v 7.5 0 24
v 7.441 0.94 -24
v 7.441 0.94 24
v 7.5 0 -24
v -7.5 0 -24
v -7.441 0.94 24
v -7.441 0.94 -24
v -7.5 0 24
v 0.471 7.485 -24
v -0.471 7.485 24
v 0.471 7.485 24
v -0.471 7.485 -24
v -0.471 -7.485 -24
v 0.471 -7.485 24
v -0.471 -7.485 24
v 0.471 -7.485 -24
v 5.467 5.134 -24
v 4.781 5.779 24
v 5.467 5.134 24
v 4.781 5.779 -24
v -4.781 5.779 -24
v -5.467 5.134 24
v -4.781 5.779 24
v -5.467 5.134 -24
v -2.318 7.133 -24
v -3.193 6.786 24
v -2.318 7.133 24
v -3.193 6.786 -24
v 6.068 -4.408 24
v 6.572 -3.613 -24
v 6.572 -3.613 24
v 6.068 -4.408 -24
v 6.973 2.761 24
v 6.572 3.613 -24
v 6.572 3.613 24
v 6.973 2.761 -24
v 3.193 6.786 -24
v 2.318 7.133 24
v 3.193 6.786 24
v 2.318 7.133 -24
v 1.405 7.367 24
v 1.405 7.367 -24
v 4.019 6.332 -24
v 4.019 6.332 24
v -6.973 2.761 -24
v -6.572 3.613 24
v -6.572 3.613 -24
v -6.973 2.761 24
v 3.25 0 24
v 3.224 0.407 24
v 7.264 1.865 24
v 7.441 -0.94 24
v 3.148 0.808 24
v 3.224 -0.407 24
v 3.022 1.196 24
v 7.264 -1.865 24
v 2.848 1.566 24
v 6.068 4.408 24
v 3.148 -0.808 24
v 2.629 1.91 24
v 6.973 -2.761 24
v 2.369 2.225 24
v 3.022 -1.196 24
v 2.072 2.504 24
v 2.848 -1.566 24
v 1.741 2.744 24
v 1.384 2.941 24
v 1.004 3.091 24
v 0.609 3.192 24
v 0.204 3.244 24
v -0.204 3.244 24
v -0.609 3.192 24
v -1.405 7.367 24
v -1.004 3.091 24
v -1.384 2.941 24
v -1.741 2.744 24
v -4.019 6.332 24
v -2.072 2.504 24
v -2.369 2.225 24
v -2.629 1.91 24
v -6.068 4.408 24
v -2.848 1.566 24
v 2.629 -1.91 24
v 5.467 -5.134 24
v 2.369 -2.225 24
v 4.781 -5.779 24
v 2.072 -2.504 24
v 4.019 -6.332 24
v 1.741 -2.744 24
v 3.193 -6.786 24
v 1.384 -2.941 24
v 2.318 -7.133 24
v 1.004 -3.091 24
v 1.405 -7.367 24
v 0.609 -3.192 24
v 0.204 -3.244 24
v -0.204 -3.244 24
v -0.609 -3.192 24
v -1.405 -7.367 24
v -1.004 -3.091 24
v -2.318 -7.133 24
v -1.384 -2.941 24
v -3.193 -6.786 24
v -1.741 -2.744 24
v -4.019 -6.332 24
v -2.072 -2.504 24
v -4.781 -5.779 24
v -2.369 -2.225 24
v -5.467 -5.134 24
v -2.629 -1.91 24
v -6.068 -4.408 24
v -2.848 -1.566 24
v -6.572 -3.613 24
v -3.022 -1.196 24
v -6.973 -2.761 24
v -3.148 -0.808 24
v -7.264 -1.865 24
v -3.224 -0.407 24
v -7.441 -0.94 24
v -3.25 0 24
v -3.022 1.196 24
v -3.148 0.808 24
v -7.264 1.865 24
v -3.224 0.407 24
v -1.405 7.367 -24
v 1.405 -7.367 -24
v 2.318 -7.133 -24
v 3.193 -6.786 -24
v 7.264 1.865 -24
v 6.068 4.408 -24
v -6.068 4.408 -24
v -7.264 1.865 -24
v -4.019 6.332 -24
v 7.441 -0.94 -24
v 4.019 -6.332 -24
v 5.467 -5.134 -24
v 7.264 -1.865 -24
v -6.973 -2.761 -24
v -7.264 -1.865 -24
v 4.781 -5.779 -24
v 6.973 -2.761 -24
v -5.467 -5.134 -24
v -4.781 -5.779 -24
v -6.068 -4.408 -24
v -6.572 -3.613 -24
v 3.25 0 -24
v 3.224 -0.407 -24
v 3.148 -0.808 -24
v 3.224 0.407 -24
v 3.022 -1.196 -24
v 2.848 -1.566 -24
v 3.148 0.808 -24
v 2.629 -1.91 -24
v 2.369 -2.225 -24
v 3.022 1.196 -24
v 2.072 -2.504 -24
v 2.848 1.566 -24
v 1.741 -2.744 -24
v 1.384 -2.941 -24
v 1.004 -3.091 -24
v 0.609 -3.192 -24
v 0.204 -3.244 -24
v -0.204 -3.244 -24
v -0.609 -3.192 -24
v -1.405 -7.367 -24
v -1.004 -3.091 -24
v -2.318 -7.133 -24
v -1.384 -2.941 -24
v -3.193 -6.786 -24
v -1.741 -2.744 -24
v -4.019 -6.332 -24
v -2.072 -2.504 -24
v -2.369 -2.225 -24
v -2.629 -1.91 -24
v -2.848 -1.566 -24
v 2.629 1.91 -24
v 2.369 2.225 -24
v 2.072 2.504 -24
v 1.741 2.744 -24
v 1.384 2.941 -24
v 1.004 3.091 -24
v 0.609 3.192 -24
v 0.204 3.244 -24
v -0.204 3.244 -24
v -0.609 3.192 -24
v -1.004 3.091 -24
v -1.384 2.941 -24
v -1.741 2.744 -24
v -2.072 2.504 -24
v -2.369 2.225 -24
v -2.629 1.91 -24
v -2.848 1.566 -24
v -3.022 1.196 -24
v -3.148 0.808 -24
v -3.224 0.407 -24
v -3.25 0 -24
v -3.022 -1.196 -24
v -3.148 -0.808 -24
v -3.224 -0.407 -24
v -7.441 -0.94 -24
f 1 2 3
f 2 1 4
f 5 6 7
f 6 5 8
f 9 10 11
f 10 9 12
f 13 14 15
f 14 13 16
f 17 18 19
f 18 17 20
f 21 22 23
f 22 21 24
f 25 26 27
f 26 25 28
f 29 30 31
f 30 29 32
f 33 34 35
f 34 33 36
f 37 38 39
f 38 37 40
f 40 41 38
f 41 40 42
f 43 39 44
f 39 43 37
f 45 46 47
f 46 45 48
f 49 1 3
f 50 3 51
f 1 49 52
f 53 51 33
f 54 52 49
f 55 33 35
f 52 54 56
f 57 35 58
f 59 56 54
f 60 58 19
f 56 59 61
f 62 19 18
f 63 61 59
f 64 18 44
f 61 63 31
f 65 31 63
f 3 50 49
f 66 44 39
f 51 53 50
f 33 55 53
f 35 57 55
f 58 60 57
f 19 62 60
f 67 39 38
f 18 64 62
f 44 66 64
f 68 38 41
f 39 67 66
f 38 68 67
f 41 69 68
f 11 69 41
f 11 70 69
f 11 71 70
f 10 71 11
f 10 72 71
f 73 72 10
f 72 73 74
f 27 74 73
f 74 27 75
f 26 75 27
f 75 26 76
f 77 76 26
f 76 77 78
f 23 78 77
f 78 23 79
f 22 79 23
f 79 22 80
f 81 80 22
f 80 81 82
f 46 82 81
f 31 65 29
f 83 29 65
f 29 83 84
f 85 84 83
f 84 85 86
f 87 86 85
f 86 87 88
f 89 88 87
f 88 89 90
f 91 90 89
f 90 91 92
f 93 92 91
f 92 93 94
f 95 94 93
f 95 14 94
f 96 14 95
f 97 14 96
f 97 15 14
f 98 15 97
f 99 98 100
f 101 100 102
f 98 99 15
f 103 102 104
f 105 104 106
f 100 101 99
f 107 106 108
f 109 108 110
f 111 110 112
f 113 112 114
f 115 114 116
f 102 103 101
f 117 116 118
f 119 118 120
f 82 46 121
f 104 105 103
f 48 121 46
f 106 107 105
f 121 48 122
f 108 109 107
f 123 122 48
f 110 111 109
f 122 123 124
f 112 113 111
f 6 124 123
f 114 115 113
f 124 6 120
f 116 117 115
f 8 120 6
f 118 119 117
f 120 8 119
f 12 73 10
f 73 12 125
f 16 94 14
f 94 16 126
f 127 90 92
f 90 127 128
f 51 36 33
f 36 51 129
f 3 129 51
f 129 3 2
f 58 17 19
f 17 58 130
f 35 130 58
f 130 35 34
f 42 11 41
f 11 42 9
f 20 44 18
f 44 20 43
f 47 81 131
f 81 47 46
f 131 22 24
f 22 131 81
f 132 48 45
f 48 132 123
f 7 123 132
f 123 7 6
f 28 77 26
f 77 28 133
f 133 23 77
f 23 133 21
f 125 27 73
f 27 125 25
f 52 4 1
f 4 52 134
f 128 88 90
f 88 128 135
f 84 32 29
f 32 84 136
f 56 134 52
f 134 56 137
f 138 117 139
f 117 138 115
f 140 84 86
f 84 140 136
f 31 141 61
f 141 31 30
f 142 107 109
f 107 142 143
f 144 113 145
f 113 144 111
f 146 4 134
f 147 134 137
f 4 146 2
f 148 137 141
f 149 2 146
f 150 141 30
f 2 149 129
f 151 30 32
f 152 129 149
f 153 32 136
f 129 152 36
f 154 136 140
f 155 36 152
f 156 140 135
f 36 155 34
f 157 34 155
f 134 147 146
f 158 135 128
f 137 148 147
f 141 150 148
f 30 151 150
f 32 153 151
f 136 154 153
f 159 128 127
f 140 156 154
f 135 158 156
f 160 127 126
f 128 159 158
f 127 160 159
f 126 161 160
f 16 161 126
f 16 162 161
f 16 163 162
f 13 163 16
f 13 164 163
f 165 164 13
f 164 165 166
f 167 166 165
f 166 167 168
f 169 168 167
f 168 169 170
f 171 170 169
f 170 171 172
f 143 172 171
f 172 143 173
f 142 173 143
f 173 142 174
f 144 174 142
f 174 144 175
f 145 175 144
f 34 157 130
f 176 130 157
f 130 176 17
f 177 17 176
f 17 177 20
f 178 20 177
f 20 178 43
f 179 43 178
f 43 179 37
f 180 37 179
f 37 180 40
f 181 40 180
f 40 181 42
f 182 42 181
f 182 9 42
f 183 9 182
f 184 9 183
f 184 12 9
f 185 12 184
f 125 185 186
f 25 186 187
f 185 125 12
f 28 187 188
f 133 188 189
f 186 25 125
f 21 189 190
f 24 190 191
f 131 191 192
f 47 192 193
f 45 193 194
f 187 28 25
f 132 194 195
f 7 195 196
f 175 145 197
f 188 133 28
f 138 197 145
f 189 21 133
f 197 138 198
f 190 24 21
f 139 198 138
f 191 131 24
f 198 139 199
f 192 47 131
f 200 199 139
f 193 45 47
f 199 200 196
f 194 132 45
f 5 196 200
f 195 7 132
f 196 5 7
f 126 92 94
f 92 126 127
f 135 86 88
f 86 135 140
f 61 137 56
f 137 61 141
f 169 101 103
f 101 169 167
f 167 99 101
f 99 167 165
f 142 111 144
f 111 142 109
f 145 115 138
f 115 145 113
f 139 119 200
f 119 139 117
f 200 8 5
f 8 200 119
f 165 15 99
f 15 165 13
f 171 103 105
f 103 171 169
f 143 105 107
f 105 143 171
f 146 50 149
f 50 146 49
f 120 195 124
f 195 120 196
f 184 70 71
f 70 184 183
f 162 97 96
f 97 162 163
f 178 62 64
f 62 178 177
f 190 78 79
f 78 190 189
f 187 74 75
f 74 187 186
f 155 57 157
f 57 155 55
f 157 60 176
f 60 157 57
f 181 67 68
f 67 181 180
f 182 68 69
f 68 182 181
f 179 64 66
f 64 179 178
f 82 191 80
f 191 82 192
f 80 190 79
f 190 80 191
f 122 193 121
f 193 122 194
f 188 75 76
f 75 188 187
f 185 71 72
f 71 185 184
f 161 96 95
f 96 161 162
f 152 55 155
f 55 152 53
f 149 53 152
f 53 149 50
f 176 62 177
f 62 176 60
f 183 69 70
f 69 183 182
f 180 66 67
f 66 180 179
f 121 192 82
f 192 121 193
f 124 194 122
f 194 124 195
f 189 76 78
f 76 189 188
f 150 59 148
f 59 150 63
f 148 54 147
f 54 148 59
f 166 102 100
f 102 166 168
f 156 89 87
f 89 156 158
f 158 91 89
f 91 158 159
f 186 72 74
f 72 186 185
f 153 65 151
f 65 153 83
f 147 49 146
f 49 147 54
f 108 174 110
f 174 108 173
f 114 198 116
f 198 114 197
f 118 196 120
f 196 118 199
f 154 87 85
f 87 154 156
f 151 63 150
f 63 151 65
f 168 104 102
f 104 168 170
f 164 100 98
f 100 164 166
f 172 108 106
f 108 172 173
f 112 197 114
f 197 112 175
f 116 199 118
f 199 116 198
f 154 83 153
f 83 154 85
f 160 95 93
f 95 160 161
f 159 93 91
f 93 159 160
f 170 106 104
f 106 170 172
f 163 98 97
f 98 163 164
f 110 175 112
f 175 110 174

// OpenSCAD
$fn = 50;


difference() {
	union() {
		translate(v = [0, 0, -24.0000000000]) {
			cylinder(h = 48, r = 7.5000000000);
		}
	}
	union() {
		translate(v = [0, 0, -100.0000000000]) {
			cylinder(h = 200, r = 3.2500000000);
		}
	}
}
